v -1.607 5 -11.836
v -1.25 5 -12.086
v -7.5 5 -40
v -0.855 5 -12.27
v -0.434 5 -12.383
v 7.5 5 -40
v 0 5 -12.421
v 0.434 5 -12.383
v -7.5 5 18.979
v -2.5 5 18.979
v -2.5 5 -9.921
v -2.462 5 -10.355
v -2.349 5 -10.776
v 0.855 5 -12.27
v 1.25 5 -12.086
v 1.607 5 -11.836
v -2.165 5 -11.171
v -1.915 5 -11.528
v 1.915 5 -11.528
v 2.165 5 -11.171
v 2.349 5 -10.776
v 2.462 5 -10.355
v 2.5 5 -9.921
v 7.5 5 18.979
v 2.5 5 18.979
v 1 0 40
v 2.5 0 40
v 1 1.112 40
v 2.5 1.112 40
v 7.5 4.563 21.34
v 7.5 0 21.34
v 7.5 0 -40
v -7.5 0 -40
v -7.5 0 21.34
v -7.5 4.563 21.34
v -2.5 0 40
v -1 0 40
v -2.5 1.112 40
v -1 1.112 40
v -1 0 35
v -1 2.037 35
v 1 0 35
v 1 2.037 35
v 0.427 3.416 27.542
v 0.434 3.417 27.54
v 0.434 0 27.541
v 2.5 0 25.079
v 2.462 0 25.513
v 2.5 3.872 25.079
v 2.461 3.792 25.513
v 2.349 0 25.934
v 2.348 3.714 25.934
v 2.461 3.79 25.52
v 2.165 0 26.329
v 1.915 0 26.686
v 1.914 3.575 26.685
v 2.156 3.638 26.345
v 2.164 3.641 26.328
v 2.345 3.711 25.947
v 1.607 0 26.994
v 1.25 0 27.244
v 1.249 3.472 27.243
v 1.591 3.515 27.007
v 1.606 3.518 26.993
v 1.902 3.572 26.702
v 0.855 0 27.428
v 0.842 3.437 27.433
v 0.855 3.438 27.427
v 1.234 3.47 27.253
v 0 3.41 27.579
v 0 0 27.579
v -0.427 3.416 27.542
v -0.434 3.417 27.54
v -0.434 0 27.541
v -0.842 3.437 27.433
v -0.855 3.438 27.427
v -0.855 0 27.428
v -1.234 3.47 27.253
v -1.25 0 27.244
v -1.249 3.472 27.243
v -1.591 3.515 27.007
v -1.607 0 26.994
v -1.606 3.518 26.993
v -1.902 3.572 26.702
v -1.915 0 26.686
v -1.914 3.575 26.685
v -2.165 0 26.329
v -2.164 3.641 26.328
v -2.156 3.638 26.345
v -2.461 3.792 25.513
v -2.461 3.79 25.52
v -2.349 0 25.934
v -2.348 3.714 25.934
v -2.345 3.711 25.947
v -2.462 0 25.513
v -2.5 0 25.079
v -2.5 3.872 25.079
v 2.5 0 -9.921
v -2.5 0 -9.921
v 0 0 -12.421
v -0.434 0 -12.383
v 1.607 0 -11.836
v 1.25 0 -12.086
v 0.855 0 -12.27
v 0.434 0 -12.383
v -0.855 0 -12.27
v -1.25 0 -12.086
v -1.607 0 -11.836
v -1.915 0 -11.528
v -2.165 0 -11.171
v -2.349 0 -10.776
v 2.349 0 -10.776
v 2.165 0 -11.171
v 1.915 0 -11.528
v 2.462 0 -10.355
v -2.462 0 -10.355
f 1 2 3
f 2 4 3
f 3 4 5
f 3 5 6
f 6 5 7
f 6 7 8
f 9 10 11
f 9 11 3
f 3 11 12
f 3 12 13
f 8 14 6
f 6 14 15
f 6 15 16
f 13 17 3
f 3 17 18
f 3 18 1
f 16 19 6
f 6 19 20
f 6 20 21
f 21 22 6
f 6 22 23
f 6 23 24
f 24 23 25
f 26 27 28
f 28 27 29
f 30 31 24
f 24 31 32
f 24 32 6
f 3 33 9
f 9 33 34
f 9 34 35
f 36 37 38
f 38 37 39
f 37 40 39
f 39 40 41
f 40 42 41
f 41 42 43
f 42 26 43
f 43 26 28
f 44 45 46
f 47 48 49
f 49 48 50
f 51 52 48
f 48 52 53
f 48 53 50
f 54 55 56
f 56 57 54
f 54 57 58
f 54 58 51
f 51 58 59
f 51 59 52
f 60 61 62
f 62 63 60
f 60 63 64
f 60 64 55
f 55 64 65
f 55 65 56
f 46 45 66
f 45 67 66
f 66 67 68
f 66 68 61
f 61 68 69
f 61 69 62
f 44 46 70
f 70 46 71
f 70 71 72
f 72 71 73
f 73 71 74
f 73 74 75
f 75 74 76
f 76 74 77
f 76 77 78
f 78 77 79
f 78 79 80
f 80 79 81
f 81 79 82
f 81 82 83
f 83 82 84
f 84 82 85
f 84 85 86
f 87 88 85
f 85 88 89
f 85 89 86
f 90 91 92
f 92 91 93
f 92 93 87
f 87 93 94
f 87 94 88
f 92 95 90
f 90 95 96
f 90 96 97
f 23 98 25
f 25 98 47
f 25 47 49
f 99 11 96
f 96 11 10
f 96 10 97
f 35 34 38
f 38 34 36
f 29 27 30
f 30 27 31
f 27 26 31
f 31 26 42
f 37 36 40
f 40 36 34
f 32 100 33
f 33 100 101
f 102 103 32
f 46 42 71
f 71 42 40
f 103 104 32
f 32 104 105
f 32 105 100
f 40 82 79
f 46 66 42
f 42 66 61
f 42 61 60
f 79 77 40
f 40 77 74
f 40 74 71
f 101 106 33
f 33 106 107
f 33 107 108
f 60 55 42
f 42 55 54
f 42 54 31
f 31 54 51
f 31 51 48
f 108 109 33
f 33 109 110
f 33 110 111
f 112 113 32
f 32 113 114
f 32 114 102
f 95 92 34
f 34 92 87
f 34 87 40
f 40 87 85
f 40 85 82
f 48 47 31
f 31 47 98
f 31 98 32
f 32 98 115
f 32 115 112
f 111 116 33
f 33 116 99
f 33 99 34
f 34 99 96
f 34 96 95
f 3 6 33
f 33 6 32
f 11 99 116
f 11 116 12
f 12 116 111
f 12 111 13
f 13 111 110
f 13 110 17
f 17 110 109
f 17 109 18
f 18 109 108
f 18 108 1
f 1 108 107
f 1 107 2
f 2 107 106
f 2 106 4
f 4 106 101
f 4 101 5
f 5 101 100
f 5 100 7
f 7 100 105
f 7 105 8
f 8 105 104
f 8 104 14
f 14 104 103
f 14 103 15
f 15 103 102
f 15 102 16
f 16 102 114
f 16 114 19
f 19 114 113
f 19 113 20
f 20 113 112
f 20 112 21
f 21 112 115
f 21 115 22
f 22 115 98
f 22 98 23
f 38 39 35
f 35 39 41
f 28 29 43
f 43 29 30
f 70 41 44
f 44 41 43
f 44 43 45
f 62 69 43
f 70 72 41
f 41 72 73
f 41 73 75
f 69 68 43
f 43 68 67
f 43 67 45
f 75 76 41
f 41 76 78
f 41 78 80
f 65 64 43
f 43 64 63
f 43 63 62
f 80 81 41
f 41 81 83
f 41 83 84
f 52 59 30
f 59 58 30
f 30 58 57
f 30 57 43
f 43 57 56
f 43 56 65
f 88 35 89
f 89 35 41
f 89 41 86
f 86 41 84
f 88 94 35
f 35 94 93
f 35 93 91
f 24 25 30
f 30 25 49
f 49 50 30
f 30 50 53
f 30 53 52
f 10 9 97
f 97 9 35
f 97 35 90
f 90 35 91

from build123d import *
from OCP.BRepFilletAPI import BRepFilletAPI_MakeChamfer

# Parameters (mm, degrees)
BOSS_EXTRUDE1_DEPTH     = 5
CHAMFER1_SIZE           = 5
CHAMFER1_SIZE2          = 18.660254038
CUT_EXTRUDE1_DEPTH      = 10
CUT_EXTRUDE1_DEPTH_BACK = 10


with BuildPart() as part:
    # Sketch1 → Boss-Extrude1 (new body)
    with BuildSketch(Plane(origin=(0, 0, 0), x_dir=(1, 0, 0), z_dir=(0, 1, 0))):
        Polygon((-7.5, 40), (7.5, 40), (7.5, -40), (1, -40), (1, -35), (-1, -35), (-1, -40), (-7.5, -40), align=None)
        with BuildLine():
            Line((-2.5, -25.078773429), (-2.5, 9.921226571))
            ThreePointArc((-2.5, 9.921226571), (0, 12.421226571), (2.5, 9.921226571))
            Line((2.5, 9.921226571), (2.5, -25.078773429))
            ThreePointArc((2.5, -25.078773429), (0, -27.578773429), (-2.5, -25.078773429))
        make_face(mode=Mode.SUBTRACT)
    extrude(amount=BOSS_EXTRUDE1_DEPTH)

    # Chamfer1: one chamfer whose edges measure the first distance from different faces: ONE call of the kernel's chamfer builder (chamfer() names one face for all edges)
    chamfer1_edges_1 = [part.edges().sort_by_distance(p)[0] for p in [
        (-7.5, 2.5, 40),
    ]]
    chamfer1_side_1 = [part.faces().sort_by_distance(p)[0] for p in [
        (-4.25, 2.5, 40),
    ]]
    chamfer1_edges_2 = [part.edges().sort_by_distance(p)[0] for p in [
        (7.5, 2.5, 40),
    ]]
    chamfer1_side_2 = [part.faces().sort_by_distance(p)[0] for p in [
        (4.25, 2.5, 40),
    ]]
    chamfer1 = BRepFilletAPI_MakeChamfer(part.part.solid().wrapped)
    for e in chamfer1_edges_1:
        chamfer1.Add(CHAMFER1_SIZE, CHAMFER1_SIZE2, e.wrapped, chamfer1_side_1[0].wrapped)  # the first distance lies on this face
    for e in chamfer1_edges_2:
        chamfer1.Add(CHAMFER1_SIZE, CHAMFER1_SIZE2, e.wrapped, chamfer1_side_2[0].wrapped)  # the first distance lies on this face
    add(Compound.cast(chamfer1.Shape()), mode=Mode.REPLACE)

    # Sketch2 → Cut-Extrude1 (cut, two sides: drawn at the far end of the back side and taken through both)
    with BuildSketch(Plane(origin=(0, 0, 0), x_dir=(0, 0, -1), z_dir=(1, 0, 0)).offset(-CUT_EXTRUDE1_DEPTH_BACK)):
        Polygon((-42.19528089, 0.706295209), (-15.143740131, 5.709375865), (-42.19528089, 5.709375865), align=None)
    extrude(amount=CUT_EXTRUDE1_DEPTH + CUT_EXTRUDE1_DEPTH_BACK, mode=Mode.SUBTRACT)


solid = part.part
